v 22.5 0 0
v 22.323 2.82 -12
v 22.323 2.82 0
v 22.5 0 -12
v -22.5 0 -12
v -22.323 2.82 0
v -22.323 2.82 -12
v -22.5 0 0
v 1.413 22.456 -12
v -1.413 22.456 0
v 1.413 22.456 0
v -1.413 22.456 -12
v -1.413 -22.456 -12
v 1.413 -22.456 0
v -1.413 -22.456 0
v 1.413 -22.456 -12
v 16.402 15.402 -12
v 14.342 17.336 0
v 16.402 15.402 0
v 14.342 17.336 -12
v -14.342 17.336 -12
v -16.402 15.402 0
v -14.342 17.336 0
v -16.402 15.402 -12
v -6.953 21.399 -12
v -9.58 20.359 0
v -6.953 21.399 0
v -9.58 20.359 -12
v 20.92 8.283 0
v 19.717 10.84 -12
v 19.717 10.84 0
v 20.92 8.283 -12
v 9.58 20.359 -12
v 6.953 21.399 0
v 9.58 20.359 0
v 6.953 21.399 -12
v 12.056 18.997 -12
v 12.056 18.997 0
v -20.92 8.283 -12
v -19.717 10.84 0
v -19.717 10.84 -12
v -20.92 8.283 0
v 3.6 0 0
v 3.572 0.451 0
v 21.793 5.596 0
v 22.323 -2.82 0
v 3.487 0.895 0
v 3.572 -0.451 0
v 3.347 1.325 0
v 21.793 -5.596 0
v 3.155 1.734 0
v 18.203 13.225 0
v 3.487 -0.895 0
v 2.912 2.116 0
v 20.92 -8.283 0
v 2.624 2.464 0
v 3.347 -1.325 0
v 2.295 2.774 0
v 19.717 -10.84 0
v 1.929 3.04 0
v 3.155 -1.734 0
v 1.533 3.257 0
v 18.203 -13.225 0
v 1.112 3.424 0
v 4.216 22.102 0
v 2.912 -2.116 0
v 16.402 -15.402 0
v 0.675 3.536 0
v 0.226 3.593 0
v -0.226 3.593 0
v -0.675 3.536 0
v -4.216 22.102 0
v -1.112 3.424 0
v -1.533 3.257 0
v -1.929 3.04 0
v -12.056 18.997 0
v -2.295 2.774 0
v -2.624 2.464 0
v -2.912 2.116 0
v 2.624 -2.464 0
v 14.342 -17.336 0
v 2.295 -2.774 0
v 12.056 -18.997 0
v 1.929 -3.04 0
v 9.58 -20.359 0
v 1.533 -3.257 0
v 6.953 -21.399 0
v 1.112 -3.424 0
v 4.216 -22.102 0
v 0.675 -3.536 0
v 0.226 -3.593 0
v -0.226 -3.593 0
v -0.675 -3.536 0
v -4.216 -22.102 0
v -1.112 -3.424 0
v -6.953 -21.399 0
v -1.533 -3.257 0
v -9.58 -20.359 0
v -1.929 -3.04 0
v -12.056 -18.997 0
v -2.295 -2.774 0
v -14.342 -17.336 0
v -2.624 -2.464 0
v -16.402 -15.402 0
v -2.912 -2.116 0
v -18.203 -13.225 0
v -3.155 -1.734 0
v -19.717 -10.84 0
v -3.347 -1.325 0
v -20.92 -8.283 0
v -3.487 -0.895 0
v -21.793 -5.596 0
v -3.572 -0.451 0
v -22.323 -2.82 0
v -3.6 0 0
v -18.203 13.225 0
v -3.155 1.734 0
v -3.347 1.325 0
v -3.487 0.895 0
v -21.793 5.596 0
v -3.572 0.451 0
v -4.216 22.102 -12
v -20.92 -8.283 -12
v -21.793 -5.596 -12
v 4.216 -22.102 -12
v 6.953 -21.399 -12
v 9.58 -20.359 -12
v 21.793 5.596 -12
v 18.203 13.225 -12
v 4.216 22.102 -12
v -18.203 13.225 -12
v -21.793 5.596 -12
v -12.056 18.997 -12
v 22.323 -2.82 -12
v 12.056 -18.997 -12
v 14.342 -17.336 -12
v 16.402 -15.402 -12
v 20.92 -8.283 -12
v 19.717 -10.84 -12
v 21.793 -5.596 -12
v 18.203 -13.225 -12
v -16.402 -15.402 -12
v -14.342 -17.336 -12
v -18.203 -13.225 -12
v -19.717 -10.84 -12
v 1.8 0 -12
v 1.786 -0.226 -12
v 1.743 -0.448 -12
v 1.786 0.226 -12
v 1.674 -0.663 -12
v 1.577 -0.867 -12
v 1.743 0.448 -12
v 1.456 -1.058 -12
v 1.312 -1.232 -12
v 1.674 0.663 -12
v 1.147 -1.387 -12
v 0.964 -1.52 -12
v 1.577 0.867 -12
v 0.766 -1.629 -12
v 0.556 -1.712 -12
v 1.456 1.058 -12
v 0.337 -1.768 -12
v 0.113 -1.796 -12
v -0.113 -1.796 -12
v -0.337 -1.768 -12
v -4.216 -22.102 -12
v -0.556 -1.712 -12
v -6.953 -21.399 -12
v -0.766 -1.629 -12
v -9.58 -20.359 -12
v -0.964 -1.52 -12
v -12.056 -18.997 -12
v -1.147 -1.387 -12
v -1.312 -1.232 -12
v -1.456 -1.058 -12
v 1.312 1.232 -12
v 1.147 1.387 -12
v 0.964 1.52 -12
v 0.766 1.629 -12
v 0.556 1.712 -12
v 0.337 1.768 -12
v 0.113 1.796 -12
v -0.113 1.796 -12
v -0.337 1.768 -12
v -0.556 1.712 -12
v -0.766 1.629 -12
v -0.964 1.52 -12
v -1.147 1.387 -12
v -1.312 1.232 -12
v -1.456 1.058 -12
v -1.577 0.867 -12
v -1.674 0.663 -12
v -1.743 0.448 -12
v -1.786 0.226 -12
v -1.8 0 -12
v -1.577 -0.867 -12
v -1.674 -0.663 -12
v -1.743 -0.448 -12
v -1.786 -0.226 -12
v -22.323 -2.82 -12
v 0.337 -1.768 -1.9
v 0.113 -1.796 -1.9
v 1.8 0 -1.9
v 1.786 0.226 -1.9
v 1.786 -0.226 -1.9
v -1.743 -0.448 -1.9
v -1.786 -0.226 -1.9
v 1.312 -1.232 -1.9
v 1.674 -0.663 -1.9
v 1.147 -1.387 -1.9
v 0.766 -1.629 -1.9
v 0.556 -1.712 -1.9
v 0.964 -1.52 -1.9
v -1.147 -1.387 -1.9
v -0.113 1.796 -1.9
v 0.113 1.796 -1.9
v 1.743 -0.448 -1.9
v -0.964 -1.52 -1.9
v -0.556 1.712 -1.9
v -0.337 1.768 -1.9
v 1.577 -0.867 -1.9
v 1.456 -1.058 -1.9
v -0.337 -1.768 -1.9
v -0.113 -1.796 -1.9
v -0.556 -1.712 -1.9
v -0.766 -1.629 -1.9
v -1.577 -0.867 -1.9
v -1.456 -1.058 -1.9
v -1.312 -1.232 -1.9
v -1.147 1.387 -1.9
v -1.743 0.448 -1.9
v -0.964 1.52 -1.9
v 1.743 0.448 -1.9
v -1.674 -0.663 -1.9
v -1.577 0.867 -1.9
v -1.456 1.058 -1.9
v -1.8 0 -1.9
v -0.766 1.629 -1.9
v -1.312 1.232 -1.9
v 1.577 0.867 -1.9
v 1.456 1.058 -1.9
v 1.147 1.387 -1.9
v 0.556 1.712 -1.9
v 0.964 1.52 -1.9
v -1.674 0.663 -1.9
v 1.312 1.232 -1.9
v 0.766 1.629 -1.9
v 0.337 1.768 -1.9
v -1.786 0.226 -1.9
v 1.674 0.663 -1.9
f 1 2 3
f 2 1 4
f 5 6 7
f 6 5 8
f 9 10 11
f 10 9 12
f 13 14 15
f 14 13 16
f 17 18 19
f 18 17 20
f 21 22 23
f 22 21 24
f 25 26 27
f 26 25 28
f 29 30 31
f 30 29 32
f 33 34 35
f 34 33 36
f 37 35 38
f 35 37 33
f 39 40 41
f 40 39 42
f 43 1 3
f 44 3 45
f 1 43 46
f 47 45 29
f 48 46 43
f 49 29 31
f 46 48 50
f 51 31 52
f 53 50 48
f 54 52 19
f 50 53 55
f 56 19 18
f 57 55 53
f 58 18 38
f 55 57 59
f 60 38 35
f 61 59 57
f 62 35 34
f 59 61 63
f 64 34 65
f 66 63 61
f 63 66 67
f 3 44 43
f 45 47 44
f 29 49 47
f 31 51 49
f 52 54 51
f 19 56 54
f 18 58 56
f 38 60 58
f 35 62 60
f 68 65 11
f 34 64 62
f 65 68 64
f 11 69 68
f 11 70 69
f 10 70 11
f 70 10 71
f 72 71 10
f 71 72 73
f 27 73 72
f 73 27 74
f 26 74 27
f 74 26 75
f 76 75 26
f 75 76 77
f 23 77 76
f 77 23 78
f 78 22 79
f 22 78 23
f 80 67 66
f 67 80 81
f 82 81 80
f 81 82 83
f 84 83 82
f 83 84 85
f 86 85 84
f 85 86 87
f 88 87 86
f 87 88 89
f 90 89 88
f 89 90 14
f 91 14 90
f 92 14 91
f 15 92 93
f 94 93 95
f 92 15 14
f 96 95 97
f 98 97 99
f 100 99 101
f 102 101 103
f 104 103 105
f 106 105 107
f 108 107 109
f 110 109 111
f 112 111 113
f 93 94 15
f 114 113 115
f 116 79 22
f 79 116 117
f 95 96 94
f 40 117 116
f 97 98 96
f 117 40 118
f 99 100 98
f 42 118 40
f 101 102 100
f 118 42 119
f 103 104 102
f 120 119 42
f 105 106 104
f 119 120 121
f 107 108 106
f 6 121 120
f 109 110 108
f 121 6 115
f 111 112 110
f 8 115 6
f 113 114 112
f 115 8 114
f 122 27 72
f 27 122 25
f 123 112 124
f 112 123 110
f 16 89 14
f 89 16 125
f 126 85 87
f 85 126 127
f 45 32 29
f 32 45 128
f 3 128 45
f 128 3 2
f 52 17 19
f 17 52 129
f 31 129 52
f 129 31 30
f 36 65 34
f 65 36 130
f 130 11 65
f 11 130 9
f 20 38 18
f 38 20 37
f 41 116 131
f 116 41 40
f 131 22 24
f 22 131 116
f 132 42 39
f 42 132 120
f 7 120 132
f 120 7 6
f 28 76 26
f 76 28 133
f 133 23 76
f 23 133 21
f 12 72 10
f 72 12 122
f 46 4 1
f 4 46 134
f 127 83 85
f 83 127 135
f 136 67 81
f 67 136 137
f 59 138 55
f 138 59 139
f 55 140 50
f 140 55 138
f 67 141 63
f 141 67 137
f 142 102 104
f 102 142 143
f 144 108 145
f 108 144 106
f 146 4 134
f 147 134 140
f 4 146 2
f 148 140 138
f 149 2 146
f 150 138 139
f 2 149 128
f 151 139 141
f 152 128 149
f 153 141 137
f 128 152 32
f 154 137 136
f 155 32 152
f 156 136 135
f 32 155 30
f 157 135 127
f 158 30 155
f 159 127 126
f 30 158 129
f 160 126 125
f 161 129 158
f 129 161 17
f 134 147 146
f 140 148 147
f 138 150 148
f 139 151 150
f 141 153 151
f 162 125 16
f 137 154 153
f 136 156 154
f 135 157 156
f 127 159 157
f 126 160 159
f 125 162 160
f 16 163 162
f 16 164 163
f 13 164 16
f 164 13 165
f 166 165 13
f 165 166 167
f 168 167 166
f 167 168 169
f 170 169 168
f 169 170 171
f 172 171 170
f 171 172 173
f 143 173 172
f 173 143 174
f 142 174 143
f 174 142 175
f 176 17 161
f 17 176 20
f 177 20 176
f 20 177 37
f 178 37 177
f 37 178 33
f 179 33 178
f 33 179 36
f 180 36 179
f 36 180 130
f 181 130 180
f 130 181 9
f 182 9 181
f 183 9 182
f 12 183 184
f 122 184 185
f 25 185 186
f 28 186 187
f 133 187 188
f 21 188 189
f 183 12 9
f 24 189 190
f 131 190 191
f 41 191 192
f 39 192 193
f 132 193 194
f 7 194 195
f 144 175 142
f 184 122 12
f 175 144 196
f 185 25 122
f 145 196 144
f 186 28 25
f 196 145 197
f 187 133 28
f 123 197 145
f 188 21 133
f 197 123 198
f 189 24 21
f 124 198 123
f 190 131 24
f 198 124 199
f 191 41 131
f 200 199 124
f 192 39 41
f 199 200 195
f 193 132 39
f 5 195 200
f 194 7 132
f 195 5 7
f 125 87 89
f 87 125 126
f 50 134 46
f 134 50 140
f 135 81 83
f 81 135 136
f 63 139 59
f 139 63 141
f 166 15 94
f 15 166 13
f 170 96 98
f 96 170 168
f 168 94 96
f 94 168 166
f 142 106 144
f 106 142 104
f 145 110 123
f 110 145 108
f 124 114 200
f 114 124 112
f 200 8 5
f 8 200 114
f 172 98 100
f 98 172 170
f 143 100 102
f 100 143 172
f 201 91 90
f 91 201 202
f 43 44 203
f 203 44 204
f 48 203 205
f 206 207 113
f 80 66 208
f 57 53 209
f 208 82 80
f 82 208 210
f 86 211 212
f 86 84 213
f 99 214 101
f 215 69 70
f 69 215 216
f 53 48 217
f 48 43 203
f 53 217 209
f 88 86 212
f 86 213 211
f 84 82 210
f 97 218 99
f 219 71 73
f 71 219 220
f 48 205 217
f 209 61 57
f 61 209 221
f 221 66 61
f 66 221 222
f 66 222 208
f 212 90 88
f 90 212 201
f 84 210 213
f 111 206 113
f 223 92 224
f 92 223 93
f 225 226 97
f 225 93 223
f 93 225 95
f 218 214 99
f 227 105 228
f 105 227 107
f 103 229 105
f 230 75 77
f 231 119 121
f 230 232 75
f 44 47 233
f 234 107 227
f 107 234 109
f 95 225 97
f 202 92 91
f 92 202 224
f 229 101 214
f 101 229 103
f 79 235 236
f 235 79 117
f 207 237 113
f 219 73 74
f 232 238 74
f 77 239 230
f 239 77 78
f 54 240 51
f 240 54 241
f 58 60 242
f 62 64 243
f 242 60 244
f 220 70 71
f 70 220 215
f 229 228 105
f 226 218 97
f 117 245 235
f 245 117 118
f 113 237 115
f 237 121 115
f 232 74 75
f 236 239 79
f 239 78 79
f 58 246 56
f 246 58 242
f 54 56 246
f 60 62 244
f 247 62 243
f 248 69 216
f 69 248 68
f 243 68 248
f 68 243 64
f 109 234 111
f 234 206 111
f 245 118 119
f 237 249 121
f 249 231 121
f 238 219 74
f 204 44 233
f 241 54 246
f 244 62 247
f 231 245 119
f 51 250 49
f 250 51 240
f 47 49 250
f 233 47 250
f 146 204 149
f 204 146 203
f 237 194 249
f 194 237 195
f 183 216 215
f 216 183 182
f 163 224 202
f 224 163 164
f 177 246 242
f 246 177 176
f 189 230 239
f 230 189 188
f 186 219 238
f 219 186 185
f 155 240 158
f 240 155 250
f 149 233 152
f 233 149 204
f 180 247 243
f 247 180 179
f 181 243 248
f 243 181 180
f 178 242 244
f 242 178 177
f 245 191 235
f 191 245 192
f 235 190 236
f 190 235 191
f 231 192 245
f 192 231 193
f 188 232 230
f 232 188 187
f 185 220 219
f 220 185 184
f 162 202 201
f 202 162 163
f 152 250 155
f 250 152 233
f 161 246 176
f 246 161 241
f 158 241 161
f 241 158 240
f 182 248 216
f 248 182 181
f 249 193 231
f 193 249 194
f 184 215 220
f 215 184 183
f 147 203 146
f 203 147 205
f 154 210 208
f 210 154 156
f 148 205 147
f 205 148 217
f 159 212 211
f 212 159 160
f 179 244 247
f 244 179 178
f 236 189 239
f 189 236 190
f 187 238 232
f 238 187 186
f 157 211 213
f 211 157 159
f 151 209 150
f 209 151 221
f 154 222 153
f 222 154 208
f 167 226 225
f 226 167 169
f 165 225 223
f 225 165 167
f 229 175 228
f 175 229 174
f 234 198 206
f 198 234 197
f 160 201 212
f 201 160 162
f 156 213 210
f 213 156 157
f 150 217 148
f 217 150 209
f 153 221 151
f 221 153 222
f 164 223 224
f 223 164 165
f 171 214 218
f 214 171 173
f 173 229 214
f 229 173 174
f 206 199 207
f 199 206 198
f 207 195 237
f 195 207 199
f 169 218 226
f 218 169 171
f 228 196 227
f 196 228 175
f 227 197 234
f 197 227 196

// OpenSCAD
$fn = 50;


difference() {
	union() {
		translate(v = [0, 0, -12.0000000000]) {
			cylinder(h = 12, r = 22.5000000000);
		}
		translate(v = [0, 0, -12.0000000000]) {
			cylinder(h = 12, r = 2.8750000000);
		}
	}
	union() {
		translate(v = [0, 0, 0]) {
			rotate(a = [0, 0, 0]) {
				difference() {
					union() {
						translate(v = [0, 0, -12.0000000000]) {
							cylinder(h = 12, r = 1.5000000000);
						}
						translate(v = [0, 0, -1.9000000000]) {
							cylinder(h = 1.9000000000, r1 = 1.8000000000, r2 = 3.6000000000);
						}
						translate(v = [0, 0, -12.0000000000]) {
							cylinder(h = 12, r = 1.8000000000);
						}
						translate(v = [0, 0, -12.0000000000]) {
							cylinder(h = 12, r = 1.5000000000);
						}
					}
					union();
				}
			}
		}
	}
}
